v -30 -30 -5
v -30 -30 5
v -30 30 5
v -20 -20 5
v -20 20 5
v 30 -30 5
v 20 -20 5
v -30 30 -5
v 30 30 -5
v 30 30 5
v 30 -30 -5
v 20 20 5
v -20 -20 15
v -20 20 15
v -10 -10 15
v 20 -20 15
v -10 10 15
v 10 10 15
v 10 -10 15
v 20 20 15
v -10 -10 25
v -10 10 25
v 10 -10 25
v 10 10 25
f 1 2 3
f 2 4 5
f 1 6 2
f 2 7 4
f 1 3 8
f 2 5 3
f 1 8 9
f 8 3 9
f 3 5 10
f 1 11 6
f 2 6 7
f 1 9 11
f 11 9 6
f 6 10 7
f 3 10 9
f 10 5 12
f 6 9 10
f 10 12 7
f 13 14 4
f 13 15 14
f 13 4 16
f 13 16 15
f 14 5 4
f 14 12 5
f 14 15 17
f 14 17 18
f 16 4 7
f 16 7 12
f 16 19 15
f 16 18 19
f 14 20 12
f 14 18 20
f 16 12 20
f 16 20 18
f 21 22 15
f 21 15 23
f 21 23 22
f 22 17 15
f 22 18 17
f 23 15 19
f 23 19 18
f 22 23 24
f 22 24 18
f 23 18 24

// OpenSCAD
// 3段の階段状ピラミッド

// 1段目 (底)
// サイズ: 60mm x 60mm x 10mm
// 中心を原点に配置
cube([60, 60, 10], center = true);

// 2段目 (中央)
// サイズ: 40mm x 40mm x 10mm
// 1段目の上に配置するため、Z軸方向に10mm移動
translate([0, 0, 10]) {
    cube([40, 40, 10], center = true);
}

// 3段目 (上)
// サイズ: 20mm x 20mm x 10mm
// 2段目の上に配置するため、Z軸方向にさらに10mm (合計20mm) 移動
translate([0, 0, 20]) {
    cube([20, 20, 10], center = true);
}
